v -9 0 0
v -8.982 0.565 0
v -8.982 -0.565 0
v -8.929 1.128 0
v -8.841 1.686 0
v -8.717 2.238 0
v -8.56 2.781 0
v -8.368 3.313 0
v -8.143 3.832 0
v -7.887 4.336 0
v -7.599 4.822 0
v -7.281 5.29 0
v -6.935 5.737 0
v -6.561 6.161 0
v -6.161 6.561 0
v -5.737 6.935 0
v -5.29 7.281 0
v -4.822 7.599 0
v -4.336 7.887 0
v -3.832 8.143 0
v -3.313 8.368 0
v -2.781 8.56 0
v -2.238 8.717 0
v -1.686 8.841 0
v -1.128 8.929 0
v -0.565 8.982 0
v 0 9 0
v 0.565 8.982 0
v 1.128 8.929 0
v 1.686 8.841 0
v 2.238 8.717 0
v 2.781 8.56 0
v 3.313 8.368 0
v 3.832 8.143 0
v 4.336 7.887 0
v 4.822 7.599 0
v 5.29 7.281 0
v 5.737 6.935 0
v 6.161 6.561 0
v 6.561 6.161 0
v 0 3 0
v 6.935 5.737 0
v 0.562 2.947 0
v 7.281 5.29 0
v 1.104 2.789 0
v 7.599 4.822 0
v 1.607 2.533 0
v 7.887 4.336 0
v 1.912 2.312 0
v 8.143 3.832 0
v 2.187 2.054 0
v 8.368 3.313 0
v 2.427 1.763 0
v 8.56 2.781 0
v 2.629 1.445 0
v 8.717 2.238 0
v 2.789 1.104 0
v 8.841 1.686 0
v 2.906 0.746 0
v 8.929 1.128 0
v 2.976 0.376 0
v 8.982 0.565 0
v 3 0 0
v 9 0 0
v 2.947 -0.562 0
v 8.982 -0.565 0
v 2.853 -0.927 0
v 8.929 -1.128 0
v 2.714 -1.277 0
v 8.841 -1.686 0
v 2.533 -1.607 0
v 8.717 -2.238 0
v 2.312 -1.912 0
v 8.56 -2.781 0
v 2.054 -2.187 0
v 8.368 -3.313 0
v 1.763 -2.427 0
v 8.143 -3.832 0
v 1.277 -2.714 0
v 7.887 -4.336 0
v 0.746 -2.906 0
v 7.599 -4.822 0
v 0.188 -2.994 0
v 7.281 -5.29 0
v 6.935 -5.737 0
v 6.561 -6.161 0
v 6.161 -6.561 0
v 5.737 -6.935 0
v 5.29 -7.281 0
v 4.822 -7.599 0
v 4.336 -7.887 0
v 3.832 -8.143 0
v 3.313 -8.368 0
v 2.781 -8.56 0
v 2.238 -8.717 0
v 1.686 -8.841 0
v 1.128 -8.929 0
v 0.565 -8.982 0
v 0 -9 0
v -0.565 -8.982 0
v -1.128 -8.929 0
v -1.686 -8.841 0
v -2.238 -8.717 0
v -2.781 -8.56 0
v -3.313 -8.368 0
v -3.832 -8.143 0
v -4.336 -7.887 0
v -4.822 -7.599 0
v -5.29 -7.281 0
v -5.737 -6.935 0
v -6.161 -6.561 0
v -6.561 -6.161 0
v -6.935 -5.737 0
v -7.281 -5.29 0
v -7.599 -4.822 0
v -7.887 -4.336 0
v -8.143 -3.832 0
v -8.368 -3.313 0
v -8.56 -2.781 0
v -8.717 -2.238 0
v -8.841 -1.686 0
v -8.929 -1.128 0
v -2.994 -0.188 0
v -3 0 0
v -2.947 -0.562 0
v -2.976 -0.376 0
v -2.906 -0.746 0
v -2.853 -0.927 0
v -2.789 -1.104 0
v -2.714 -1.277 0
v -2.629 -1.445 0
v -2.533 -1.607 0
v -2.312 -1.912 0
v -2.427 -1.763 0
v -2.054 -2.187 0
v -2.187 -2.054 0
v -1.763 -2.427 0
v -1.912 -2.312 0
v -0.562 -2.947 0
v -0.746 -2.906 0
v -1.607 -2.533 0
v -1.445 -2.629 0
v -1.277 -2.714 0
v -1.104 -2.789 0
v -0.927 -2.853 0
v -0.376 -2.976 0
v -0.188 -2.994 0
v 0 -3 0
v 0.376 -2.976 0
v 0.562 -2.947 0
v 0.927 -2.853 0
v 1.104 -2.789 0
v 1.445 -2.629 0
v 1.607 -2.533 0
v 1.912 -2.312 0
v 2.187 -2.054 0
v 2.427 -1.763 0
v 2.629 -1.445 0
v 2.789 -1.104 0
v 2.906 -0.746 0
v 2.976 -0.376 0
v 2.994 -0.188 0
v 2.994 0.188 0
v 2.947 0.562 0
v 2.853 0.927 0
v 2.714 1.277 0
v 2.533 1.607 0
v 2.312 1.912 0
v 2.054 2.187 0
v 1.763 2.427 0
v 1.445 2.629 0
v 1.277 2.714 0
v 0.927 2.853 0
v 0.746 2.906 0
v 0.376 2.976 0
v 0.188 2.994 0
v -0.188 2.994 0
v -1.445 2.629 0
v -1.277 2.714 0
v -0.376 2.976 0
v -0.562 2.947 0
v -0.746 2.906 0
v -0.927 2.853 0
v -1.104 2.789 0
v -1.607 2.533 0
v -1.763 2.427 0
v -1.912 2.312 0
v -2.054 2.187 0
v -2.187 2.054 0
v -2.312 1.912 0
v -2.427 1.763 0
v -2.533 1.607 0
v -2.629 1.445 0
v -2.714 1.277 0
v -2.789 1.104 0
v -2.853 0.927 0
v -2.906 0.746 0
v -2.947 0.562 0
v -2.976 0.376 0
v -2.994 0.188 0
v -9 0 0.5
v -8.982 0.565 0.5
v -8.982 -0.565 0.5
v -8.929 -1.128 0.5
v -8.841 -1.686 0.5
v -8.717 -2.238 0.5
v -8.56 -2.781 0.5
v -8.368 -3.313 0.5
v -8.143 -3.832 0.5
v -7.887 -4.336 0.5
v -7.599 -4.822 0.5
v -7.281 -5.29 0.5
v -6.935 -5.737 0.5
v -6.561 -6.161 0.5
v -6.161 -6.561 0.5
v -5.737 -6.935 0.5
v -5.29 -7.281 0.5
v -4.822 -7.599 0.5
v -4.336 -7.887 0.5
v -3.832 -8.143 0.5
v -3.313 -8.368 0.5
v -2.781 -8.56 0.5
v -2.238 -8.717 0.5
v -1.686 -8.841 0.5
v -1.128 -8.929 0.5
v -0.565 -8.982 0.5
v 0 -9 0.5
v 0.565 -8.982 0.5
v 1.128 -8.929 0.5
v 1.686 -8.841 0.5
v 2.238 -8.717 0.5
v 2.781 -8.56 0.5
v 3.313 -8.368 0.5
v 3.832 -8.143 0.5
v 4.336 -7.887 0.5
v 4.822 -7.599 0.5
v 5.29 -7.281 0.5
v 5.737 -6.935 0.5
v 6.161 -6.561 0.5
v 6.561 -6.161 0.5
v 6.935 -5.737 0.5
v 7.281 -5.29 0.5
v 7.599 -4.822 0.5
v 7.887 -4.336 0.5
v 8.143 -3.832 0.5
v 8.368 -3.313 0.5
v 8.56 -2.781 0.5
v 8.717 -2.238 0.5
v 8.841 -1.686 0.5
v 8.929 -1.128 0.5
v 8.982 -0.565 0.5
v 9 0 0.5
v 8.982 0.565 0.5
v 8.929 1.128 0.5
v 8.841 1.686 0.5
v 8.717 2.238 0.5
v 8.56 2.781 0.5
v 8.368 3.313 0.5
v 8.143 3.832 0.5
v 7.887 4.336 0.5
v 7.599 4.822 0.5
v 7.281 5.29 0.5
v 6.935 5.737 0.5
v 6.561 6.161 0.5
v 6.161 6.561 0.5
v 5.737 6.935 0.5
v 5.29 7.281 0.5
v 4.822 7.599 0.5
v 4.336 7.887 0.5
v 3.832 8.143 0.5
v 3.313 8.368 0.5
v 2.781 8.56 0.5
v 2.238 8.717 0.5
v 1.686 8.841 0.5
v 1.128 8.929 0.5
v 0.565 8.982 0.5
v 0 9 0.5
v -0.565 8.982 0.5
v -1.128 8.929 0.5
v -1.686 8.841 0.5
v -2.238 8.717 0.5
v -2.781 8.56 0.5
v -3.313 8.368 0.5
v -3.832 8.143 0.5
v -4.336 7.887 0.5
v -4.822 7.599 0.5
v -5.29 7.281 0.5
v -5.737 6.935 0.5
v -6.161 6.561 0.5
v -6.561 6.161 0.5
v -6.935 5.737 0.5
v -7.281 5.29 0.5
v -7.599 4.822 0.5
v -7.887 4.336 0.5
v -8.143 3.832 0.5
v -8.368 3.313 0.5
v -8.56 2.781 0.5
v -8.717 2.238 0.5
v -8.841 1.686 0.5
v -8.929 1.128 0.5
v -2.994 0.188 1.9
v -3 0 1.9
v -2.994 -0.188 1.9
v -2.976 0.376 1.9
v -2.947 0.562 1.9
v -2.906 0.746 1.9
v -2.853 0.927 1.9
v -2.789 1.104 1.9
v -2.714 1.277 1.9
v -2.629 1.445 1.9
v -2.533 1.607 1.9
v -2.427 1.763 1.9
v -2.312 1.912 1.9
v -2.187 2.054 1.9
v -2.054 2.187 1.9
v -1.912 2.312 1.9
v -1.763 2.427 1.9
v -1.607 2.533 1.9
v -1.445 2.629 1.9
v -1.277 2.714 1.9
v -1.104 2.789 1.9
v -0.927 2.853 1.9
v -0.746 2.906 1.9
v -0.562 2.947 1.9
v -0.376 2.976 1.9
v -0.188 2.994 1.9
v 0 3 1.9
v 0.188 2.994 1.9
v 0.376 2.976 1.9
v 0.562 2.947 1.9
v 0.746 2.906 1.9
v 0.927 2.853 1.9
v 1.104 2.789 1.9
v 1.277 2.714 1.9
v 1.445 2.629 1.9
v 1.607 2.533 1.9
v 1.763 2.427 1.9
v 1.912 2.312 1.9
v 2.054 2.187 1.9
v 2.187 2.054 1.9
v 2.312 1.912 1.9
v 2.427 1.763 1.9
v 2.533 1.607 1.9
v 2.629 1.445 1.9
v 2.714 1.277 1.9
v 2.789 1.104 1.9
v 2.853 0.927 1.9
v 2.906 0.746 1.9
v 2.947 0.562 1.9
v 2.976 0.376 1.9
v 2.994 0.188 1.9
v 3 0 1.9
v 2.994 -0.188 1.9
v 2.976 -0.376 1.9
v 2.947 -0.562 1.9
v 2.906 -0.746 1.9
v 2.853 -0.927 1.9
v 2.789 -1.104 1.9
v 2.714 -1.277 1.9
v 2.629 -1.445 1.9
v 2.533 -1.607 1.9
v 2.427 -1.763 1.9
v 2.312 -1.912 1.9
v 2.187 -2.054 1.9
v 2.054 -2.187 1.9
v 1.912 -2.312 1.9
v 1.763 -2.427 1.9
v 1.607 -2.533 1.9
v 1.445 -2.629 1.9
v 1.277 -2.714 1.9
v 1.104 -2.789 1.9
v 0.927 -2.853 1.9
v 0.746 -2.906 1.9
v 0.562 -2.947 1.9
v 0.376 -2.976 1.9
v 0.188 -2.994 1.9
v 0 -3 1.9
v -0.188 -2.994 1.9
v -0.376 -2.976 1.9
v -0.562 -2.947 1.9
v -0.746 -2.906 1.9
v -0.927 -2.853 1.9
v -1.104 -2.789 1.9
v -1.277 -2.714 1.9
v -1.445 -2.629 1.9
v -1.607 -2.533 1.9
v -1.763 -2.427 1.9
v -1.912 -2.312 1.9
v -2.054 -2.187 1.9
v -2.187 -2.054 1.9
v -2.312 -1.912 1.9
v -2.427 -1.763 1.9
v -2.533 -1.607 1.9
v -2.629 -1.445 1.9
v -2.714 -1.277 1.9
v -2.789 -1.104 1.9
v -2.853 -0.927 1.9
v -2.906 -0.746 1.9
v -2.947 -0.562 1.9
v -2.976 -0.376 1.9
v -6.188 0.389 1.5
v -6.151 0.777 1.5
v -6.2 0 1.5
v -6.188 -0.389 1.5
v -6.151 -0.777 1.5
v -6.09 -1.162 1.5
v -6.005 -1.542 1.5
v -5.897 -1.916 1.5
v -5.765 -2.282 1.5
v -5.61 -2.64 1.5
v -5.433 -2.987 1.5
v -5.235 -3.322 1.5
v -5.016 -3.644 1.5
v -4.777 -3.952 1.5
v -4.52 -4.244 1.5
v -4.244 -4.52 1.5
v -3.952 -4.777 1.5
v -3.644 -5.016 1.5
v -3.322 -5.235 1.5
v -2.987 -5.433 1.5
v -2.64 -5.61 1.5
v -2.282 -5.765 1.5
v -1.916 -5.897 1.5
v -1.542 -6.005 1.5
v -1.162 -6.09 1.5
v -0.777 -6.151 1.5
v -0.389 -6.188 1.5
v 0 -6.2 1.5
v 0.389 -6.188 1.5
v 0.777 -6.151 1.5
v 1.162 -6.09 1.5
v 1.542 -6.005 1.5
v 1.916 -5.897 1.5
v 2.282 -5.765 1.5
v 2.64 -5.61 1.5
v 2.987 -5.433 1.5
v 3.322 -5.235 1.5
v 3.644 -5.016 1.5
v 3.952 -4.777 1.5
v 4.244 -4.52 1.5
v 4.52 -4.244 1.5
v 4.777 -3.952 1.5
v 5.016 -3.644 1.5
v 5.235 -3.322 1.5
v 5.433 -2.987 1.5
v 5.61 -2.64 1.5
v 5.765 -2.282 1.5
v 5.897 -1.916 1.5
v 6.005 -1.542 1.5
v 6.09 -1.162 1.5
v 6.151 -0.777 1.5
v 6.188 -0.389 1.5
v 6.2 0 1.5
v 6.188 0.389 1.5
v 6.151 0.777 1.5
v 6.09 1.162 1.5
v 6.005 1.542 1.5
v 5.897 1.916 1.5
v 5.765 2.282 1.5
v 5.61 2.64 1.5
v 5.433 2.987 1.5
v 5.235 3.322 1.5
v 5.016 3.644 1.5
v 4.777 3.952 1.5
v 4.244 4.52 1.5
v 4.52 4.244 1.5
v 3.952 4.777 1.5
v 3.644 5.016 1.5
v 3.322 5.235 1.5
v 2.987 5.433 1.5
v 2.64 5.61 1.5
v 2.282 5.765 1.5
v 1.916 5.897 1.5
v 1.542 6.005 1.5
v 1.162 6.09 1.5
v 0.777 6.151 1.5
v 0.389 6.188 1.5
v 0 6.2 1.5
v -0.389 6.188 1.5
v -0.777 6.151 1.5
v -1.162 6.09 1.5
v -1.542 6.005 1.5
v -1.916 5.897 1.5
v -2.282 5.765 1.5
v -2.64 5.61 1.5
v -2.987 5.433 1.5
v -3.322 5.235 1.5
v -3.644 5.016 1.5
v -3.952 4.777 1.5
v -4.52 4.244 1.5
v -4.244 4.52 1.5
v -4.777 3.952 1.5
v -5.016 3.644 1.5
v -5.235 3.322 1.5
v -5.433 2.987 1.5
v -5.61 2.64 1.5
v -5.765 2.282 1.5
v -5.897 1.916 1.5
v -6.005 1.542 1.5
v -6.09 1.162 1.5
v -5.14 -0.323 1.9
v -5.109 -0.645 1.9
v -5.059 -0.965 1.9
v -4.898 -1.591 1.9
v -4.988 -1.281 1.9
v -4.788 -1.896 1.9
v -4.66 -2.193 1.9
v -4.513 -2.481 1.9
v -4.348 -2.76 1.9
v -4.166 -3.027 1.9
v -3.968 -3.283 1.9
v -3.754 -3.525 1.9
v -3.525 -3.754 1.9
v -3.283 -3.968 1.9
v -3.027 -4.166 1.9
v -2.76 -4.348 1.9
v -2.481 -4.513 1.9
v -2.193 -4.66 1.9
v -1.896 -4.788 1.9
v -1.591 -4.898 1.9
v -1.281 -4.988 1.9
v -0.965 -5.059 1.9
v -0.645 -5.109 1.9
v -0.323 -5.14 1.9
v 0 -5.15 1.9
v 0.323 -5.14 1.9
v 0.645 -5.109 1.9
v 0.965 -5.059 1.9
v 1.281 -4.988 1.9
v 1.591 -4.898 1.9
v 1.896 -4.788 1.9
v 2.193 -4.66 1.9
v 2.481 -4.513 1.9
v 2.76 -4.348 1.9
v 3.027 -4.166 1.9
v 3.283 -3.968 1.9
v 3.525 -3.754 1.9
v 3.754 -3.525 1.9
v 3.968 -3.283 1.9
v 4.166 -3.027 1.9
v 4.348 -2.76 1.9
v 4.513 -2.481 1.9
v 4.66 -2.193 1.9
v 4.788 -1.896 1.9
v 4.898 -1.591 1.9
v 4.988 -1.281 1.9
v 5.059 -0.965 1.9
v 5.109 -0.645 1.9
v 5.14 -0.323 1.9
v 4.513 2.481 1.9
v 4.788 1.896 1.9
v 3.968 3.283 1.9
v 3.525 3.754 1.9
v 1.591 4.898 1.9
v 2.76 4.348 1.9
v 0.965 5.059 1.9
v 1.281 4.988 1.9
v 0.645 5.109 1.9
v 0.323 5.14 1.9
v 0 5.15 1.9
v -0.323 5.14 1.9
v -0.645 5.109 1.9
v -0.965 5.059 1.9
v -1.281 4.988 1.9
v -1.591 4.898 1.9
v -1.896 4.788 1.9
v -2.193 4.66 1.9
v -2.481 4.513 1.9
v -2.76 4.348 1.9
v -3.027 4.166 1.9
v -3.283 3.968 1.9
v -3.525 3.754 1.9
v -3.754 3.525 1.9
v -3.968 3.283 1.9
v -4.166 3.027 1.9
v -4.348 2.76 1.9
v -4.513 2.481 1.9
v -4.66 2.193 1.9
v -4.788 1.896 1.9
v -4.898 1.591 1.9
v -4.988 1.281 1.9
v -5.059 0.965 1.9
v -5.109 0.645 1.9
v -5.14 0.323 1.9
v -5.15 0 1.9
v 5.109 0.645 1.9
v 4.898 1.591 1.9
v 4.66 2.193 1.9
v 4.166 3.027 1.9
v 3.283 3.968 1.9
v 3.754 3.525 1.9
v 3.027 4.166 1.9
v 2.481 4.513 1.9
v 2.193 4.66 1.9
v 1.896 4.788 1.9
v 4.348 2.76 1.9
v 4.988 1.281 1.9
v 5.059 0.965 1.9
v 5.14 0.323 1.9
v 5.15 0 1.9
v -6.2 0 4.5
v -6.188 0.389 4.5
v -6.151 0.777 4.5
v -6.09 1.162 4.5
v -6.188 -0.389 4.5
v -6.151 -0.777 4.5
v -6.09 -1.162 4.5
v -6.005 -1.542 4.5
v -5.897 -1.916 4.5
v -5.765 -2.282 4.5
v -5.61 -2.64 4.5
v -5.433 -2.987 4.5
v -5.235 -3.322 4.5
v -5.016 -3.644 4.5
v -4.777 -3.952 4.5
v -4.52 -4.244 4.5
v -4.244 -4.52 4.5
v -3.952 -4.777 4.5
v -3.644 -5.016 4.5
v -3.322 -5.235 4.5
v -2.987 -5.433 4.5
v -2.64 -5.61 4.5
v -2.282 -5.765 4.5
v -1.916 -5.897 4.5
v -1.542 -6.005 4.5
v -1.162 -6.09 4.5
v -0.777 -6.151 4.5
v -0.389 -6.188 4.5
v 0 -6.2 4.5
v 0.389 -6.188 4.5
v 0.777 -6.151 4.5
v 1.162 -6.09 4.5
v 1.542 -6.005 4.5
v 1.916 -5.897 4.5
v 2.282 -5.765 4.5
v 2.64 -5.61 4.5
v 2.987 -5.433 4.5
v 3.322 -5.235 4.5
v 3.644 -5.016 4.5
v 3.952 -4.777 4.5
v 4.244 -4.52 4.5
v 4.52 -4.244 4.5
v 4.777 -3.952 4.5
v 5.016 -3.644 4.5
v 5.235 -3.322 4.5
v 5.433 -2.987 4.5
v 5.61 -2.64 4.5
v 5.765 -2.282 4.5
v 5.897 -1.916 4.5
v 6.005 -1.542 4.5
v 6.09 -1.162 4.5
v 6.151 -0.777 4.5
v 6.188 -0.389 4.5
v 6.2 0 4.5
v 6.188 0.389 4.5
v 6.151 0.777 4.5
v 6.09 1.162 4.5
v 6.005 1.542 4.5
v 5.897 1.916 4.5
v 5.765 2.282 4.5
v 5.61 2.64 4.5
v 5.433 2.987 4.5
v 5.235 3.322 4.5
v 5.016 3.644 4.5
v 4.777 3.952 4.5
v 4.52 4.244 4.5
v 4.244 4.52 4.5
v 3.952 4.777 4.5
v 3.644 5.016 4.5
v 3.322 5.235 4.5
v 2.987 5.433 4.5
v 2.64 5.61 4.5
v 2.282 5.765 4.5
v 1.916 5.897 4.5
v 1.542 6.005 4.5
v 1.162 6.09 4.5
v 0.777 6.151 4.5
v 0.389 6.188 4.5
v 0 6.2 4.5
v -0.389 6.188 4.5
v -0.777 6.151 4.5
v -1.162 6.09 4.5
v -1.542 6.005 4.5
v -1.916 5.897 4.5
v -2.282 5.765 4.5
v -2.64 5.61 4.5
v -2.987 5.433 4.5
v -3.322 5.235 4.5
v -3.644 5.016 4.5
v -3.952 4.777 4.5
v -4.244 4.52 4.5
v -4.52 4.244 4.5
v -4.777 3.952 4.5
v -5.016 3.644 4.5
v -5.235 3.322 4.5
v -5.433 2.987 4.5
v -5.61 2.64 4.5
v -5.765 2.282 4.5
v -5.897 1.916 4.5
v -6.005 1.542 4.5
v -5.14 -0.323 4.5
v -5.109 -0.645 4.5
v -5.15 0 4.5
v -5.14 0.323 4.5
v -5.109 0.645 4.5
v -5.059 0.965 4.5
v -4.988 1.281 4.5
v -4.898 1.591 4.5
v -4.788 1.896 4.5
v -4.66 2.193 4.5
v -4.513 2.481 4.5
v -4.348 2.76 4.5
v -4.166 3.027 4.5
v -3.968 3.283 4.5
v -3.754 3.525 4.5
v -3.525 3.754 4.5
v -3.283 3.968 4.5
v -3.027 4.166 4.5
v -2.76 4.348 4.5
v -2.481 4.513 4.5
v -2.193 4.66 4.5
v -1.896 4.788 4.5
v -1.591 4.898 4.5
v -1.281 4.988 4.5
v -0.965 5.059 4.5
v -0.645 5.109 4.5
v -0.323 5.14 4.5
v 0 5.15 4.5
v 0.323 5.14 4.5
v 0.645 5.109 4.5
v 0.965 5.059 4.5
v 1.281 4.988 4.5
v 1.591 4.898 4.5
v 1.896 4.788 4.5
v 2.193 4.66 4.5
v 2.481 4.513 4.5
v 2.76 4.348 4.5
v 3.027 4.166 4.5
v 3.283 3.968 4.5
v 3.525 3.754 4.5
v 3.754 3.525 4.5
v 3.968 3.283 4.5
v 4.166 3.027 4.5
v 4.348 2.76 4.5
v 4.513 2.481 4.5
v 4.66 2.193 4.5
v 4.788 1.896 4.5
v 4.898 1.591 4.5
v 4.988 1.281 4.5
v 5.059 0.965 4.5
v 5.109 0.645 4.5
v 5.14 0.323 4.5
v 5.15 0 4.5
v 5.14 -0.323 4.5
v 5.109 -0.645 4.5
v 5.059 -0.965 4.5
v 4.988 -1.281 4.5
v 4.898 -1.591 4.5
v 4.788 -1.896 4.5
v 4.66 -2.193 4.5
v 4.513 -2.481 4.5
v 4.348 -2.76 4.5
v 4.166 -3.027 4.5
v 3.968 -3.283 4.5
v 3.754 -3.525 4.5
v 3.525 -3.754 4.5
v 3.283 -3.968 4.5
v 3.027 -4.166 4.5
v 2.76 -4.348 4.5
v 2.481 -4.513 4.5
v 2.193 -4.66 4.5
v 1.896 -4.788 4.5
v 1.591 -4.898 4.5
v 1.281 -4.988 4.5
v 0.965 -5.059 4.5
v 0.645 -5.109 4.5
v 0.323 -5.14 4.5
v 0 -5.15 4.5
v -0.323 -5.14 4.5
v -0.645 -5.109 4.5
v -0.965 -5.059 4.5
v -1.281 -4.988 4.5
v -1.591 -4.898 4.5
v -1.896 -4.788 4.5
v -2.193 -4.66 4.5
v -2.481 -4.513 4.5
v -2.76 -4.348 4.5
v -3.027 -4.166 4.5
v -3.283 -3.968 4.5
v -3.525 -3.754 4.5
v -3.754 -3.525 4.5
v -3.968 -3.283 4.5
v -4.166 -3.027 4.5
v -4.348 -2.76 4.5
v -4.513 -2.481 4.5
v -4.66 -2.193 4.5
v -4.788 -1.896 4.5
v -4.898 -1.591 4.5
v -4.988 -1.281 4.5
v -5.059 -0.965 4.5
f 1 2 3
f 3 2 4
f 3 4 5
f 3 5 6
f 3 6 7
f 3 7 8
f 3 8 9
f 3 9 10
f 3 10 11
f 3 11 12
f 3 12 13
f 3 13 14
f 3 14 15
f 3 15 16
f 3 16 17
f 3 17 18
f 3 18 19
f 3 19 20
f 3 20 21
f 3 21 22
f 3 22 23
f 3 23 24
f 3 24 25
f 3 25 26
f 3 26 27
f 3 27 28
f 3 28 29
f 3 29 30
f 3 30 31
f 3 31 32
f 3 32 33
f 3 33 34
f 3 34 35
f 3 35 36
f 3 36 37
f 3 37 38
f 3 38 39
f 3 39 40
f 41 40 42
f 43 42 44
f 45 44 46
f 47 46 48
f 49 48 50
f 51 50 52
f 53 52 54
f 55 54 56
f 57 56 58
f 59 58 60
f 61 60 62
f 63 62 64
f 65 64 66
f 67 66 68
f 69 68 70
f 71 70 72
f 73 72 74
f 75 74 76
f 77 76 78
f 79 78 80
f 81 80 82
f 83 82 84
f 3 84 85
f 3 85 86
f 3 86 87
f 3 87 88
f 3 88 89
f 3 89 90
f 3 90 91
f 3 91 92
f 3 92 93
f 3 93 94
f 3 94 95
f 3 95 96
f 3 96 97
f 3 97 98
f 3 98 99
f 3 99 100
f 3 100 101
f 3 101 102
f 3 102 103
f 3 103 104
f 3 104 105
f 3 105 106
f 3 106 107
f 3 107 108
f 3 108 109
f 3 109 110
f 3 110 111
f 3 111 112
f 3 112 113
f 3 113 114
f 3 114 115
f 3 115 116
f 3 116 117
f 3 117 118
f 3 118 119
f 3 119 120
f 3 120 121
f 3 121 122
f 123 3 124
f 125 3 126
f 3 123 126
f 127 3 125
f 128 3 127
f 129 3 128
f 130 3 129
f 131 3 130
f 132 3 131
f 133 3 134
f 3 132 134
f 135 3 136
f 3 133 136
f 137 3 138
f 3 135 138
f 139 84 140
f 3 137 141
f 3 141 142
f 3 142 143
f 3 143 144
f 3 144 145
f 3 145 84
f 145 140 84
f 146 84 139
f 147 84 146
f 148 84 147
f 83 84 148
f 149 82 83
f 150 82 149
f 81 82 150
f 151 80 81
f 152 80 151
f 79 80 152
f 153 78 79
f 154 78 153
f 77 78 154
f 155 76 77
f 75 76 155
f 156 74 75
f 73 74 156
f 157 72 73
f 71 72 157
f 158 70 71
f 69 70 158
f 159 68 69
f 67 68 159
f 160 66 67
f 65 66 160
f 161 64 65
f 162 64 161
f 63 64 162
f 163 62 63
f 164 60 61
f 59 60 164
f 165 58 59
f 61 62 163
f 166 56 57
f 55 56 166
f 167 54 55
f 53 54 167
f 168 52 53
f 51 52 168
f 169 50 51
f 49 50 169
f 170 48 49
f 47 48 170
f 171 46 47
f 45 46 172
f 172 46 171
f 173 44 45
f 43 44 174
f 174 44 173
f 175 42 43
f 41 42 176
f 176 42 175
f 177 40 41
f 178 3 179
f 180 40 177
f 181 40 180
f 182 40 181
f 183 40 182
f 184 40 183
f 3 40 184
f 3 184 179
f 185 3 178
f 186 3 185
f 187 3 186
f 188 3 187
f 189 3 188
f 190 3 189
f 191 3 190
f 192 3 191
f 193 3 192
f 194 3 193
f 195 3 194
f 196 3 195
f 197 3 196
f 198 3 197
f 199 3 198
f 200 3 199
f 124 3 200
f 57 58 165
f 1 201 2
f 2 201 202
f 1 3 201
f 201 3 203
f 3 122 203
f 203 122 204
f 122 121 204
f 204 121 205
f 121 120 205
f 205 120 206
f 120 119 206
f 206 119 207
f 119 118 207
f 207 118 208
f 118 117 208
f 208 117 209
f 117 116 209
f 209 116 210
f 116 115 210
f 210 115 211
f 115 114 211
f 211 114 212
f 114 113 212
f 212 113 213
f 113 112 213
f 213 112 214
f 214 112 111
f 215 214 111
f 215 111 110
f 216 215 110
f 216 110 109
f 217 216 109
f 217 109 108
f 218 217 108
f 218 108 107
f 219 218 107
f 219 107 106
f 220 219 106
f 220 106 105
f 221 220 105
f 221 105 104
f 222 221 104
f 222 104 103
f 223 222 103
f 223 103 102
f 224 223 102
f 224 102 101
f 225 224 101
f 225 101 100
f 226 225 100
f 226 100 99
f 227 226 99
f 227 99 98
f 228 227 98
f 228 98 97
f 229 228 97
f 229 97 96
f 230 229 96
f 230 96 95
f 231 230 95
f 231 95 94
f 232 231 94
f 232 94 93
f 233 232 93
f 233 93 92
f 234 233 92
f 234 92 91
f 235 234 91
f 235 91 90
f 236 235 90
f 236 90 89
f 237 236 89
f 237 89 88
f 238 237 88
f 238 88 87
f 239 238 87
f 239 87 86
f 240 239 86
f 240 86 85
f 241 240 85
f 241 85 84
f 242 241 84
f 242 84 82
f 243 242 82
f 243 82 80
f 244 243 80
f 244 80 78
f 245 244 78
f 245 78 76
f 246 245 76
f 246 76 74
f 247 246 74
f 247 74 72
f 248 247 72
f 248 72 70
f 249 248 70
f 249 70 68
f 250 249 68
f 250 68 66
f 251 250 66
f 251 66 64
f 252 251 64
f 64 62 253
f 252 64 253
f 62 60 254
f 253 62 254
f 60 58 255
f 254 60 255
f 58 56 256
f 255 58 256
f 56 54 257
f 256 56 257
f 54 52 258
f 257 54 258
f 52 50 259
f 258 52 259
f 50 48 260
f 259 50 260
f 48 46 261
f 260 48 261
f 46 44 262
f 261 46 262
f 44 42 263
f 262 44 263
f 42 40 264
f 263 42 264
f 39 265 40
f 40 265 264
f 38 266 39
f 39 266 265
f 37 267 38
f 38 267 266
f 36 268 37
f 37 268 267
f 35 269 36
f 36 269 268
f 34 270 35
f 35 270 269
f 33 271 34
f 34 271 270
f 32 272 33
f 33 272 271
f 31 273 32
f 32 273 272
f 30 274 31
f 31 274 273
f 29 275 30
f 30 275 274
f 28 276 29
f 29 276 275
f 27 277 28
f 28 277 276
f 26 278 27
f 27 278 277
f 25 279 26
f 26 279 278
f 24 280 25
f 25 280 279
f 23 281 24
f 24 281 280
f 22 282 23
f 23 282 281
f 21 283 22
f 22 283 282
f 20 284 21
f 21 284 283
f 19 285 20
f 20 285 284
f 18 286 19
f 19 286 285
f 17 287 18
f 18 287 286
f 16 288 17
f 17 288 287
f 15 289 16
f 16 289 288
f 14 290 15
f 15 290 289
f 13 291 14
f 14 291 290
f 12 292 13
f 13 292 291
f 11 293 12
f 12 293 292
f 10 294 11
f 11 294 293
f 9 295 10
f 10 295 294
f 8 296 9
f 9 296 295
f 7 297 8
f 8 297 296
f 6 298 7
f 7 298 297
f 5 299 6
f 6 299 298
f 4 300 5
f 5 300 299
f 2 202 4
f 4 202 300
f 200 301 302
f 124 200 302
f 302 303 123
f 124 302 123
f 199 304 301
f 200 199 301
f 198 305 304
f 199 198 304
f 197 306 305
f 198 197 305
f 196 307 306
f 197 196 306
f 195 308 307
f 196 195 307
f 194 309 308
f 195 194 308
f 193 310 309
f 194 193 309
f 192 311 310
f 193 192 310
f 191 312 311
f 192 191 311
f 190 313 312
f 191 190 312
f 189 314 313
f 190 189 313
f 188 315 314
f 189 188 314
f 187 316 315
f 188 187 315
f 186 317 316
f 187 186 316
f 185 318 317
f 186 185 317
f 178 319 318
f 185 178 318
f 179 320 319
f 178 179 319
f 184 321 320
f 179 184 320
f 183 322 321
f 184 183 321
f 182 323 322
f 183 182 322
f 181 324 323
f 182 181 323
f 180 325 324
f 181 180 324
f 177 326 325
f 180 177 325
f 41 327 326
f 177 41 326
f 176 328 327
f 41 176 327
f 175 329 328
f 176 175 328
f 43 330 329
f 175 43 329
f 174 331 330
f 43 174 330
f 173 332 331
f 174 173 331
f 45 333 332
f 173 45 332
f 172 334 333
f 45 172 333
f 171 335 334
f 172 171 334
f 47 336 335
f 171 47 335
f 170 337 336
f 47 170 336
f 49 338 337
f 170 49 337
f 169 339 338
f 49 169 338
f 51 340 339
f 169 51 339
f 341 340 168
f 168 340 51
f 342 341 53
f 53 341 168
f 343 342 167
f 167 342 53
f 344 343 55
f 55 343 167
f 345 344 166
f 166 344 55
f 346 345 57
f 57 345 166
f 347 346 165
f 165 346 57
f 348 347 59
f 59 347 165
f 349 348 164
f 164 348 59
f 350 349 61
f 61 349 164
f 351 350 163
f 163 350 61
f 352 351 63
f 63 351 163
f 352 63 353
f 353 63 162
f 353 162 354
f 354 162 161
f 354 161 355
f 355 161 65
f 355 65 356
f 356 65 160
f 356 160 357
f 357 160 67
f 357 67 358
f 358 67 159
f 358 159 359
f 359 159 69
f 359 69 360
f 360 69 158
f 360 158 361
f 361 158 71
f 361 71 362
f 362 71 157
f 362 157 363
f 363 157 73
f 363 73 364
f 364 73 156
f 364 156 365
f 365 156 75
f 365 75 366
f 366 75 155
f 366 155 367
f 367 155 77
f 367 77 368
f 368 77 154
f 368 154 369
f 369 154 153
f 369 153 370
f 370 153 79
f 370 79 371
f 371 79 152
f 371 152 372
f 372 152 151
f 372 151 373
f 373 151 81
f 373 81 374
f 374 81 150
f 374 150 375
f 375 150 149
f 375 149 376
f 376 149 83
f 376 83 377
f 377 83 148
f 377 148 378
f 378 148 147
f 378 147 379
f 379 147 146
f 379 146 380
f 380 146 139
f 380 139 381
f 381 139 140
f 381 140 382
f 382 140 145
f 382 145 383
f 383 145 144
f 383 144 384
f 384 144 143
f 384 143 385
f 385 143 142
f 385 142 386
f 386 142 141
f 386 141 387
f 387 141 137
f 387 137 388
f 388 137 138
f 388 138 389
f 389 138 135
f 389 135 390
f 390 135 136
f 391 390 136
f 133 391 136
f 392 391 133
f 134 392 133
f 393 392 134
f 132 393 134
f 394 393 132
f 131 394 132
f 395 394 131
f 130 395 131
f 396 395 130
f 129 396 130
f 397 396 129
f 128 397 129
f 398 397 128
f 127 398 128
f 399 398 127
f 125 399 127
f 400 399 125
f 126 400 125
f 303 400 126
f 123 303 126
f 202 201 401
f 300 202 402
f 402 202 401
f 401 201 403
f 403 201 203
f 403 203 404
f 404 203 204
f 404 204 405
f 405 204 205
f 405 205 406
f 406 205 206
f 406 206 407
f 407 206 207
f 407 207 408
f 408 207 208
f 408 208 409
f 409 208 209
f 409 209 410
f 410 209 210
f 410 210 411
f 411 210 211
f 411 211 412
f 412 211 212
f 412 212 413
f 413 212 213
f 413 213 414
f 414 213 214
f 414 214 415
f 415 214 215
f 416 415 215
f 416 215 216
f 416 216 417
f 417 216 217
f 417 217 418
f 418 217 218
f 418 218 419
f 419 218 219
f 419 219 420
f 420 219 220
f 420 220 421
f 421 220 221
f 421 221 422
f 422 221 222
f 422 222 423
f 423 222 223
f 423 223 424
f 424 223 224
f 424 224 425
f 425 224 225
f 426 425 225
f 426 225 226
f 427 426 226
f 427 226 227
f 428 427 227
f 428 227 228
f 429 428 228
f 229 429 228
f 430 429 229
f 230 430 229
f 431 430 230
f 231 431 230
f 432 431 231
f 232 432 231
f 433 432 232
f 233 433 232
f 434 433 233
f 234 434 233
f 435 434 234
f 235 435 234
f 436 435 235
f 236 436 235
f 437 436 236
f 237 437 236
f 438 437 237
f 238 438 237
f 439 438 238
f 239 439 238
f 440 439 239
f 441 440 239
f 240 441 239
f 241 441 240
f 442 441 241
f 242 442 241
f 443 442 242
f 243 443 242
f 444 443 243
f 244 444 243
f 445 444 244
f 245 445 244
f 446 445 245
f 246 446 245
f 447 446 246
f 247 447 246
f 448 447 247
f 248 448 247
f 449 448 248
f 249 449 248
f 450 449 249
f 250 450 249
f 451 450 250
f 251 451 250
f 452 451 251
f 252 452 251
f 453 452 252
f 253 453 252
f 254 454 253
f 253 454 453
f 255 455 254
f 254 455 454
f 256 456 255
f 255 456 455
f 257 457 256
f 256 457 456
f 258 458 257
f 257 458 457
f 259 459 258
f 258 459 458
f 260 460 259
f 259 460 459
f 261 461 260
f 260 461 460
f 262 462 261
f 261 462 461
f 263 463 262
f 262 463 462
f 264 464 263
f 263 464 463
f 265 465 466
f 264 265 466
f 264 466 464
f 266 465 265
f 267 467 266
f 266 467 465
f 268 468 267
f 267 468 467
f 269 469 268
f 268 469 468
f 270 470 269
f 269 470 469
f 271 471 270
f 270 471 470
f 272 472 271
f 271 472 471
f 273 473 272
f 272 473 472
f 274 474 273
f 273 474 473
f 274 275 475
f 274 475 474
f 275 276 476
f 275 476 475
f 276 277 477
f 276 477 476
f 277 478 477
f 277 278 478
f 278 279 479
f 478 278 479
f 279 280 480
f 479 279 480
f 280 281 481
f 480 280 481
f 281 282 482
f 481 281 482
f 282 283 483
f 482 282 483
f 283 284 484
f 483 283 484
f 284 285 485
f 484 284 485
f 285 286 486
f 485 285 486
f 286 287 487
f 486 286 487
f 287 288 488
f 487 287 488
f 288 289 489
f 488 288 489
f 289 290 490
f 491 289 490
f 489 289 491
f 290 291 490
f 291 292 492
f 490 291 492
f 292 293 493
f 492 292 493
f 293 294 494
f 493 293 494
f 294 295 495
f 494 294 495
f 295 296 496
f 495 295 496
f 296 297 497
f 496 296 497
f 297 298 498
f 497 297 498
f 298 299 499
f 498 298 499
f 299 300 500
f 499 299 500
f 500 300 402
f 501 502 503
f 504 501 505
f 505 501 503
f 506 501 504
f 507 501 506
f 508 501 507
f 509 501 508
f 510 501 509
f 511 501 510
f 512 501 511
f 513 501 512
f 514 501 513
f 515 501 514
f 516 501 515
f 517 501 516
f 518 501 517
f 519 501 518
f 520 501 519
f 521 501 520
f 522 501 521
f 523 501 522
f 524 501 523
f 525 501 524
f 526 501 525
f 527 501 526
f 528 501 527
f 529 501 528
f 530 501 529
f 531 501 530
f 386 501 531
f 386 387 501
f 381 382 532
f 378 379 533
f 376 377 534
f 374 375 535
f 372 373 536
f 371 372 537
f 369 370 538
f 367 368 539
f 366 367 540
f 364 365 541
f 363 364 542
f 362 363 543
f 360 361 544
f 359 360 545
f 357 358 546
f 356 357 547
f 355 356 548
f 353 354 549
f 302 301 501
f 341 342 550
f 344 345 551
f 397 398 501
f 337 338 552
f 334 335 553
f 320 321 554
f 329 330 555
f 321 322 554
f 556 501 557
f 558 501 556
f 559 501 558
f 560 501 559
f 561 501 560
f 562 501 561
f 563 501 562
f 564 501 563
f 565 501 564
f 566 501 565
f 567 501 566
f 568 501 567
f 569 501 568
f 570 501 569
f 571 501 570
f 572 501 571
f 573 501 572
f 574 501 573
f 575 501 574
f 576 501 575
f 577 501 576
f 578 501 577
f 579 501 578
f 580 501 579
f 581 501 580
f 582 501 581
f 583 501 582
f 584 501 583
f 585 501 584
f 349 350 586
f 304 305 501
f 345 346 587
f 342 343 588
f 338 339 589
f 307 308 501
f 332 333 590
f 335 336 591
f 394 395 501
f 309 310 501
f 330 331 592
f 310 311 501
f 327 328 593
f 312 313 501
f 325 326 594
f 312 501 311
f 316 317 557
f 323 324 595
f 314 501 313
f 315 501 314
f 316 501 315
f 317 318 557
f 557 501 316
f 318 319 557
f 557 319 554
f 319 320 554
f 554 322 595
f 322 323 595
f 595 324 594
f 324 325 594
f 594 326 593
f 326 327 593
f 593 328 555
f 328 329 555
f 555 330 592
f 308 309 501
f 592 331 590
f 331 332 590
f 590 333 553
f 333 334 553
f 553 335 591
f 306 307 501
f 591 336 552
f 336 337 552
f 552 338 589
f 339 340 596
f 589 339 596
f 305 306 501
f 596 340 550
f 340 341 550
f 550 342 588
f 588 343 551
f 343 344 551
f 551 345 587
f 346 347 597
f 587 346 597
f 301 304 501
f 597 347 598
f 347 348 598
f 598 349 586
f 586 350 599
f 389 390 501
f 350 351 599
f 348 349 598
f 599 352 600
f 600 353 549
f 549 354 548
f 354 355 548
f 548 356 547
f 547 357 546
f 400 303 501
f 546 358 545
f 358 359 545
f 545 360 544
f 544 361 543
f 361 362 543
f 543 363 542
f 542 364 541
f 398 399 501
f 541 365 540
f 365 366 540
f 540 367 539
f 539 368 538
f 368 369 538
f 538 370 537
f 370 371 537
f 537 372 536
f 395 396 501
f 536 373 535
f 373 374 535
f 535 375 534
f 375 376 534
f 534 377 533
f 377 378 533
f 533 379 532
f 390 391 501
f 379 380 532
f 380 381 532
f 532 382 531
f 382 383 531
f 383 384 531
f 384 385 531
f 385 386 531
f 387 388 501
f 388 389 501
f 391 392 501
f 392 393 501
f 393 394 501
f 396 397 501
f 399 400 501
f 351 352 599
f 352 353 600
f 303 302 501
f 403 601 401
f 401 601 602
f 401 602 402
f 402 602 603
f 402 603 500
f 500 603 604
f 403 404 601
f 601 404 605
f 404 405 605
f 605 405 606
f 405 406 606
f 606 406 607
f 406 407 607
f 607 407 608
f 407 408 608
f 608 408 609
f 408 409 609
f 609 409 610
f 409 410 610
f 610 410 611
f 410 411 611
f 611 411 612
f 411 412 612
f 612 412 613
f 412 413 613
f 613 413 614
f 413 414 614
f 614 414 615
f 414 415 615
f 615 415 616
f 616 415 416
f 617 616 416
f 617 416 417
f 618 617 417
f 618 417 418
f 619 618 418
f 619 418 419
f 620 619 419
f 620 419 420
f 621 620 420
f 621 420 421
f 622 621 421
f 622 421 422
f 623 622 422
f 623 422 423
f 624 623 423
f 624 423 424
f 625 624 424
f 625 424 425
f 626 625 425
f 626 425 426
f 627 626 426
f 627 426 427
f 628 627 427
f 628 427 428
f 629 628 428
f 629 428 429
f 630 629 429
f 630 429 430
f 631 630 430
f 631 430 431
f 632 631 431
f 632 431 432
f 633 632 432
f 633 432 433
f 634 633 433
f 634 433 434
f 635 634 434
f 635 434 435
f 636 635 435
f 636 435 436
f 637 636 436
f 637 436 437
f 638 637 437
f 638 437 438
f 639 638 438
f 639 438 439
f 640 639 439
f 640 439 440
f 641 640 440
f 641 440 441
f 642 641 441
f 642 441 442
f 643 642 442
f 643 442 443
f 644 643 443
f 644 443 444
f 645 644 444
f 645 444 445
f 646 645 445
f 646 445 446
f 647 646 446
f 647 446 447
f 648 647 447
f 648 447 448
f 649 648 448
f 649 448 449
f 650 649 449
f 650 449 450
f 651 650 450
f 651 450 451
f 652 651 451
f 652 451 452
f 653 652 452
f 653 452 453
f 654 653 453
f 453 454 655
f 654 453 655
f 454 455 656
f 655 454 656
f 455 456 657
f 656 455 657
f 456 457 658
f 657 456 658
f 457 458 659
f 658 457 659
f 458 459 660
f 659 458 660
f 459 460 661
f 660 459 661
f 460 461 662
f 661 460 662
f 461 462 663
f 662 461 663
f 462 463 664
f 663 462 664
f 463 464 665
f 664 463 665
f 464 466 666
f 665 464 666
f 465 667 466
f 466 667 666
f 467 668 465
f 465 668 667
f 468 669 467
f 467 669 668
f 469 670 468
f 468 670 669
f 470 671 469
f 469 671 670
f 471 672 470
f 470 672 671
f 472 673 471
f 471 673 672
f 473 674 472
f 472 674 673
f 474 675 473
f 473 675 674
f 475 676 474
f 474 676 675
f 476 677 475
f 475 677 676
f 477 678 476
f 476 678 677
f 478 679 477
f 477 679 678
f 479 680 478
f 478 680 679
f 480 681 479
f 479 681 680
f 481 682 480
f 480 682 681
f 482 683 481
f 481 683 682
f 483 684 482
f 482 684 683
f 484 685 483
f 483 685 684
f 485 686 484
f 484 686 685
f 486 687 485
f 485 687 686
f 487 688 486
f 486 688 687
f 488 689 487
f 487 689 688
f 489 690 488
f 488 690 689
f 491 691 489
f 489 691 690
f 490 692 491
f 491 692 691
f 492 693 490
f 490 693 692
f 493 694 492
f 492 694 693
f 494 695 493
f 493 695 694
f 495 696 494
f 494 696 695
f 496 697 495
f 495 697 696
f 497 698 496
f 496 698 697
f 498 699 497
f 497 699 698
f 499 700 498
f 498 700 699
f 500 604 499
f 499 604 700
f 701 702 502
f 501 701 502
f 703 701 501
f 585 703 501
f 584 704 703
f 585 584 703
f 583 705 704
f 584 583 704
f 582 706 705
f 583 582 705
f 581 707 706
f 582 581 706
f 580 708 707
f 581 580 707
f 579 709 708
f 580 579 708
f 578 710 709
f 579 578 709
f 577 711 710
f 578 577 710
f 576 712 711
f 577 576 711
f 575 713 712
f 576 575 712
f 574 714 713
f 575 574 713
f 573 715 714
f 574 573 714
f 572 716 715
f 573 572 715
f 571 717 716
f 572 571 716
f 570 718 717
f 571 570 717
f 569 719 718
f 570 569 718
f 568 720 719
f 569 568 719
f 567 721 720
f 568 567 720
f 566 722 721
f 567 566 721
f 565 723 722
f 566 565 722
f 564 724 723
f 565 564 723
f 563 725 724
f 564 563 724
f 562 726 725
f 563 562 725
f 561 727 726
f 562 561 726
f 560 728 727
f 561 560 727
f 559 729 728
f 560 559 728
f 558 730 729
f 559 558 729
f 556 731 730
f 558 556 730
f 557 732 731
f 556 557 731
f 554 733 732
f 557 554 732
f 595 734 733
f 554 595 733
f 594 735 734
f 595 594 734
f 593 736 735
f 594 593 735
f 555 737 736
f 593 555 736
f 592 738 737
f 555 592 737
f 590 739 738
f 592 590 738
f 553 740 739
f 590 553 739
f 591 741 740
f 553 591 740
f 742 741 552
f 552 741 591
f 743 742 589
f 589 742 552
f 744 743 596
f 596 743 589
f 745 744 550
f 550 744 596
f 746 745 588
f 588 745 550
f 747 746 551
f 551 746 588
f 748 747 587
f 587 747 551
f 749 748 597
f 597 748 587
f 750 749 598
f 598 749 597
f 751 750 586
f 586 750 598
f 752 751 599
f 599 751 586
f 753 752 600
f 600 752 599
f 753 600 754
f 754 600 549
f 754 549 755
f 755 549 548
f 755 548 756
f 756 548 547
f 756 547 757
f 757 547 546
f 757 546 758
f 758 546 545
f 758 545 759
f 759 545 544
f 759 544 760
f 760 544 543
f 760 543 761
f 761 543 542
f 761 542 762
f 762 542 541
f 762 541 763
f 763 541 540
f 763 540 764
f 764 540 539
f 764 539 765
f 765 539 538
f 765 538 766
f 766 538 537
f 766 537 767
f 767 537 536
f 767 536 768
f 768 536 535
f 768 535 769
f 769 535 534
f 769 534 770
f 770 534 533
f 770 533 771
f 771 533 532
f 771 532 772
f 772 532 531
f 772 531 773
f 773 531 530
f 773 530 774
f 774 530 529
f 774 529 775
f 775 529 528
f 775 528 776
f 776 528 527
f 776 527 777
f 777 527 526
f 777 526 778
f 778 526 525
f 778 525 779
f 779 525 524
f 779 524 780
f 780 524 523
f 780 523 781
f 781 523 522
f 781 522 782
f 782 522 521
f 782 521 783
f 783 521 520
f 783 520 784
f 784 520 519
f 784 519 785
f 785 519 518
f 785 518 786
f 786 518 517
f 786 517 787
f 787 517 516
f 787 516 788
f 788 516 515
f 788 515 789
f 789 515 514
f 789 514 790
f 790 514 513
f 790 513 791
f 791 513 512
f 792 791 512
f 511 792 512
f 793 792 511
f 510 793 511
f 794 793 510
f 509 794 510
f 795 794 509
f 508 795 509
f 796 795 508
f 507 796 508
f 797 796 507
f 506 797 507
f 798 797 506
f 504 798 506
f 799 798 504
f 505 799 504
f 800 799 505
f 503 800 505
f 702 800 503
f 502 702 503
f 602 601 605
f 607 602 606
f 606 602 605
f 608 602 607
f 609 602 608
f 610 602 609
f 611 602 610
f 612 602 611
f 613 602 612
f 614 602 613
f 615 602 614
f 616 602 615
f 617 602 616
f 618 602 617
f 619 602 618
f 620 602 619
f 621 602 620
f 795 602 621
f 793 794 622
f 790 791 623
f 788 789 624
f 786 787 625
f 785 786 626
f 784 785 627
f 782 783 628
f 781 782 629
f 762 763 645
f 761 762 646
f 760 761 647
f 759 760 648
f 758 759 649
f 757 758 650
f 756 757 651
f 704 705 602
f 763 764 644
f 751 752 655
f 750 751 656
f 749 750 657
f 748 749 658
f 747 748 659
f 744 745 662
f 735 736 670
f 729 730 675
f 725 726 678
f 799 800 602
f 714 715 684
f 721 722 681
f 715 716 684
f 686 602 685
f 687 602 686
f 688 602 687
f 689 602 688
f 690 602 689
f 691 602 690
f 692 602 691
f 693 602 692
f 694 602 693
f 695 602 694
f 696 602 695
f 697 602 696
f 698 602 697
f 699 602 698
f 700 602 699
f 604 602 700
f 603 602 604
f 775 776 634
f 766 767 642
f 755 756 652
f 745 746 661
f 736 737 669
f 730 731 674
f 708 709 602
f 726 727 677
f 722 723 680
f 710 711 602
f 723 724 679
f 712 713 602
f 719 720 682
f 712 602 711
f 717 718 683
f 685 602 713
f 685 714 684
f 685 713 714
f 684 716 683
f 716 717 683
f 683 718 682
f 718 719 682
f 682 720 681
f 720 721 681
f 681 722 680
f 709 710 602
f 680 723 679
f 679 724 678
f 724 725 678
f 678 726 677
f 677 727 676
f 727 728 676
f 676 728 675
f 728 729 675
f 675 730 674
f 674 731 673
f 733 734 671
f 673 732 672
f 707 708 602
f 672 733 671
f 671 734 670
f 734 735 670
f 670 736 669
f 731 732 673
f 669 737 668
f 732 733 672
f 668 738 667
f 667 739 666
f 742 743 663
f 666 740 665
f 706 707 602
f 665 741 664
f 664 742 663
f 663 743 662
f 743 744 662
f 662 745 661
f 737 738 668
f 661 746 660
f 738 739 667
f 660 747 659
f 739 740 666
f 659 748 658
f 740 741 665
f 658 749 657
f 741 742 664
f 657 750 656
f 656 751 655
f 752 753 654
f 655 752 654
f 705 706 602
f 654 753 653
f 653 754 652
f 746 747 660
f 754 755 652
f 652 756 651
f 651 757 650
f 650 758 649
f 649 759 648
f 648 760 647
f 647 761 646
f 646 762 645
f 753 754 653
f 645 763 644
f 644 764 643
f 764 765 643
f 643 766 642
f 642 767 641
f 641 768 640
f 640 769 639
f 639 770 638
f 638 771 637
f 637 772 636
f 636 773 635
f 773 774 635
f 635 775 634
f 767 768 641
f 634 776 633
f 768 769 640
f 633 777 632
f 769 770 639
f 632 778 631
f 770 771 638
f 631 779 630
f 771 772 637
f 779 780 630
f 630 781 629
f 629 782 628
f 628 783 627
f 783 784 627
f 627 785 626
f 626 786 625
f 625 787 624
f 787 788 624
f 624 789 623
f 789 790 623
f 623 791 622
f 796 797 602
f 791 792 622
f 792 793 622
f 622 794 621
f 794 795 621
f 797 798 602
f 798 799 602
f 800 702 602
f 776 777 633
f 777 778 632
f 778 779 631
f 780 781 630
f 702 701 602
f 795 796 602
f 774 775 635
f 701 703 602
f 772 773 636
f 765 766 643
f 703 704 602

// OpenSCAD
// Created from Code_Pulley_623 (x4).stl
// https://github.com/Mecan0/Code
// By J.Rodigo (www.jra.so)
// Licence Creative commons atribution & share alike.

difference () {
	union() {
		cylinder (h = 0.5, r = 9, $fn=100);

		translate([0, 0, 0.5])
		cylinder(h = 1, r1 = 9, r2 = 6.2, $fn=100);

		translate([0, 0, 1.5])
		cylinder (h = 3, r = 6.2, $fn=100);
	}	
	union() {
		translate([0, 0, -1])
		cylinder (h = 3, r = 3, $fn=100);

		translate([0, 0, 1.9])
		cylinder (h = 3, r = 5.15, $fn=100);
	}	
 
}
